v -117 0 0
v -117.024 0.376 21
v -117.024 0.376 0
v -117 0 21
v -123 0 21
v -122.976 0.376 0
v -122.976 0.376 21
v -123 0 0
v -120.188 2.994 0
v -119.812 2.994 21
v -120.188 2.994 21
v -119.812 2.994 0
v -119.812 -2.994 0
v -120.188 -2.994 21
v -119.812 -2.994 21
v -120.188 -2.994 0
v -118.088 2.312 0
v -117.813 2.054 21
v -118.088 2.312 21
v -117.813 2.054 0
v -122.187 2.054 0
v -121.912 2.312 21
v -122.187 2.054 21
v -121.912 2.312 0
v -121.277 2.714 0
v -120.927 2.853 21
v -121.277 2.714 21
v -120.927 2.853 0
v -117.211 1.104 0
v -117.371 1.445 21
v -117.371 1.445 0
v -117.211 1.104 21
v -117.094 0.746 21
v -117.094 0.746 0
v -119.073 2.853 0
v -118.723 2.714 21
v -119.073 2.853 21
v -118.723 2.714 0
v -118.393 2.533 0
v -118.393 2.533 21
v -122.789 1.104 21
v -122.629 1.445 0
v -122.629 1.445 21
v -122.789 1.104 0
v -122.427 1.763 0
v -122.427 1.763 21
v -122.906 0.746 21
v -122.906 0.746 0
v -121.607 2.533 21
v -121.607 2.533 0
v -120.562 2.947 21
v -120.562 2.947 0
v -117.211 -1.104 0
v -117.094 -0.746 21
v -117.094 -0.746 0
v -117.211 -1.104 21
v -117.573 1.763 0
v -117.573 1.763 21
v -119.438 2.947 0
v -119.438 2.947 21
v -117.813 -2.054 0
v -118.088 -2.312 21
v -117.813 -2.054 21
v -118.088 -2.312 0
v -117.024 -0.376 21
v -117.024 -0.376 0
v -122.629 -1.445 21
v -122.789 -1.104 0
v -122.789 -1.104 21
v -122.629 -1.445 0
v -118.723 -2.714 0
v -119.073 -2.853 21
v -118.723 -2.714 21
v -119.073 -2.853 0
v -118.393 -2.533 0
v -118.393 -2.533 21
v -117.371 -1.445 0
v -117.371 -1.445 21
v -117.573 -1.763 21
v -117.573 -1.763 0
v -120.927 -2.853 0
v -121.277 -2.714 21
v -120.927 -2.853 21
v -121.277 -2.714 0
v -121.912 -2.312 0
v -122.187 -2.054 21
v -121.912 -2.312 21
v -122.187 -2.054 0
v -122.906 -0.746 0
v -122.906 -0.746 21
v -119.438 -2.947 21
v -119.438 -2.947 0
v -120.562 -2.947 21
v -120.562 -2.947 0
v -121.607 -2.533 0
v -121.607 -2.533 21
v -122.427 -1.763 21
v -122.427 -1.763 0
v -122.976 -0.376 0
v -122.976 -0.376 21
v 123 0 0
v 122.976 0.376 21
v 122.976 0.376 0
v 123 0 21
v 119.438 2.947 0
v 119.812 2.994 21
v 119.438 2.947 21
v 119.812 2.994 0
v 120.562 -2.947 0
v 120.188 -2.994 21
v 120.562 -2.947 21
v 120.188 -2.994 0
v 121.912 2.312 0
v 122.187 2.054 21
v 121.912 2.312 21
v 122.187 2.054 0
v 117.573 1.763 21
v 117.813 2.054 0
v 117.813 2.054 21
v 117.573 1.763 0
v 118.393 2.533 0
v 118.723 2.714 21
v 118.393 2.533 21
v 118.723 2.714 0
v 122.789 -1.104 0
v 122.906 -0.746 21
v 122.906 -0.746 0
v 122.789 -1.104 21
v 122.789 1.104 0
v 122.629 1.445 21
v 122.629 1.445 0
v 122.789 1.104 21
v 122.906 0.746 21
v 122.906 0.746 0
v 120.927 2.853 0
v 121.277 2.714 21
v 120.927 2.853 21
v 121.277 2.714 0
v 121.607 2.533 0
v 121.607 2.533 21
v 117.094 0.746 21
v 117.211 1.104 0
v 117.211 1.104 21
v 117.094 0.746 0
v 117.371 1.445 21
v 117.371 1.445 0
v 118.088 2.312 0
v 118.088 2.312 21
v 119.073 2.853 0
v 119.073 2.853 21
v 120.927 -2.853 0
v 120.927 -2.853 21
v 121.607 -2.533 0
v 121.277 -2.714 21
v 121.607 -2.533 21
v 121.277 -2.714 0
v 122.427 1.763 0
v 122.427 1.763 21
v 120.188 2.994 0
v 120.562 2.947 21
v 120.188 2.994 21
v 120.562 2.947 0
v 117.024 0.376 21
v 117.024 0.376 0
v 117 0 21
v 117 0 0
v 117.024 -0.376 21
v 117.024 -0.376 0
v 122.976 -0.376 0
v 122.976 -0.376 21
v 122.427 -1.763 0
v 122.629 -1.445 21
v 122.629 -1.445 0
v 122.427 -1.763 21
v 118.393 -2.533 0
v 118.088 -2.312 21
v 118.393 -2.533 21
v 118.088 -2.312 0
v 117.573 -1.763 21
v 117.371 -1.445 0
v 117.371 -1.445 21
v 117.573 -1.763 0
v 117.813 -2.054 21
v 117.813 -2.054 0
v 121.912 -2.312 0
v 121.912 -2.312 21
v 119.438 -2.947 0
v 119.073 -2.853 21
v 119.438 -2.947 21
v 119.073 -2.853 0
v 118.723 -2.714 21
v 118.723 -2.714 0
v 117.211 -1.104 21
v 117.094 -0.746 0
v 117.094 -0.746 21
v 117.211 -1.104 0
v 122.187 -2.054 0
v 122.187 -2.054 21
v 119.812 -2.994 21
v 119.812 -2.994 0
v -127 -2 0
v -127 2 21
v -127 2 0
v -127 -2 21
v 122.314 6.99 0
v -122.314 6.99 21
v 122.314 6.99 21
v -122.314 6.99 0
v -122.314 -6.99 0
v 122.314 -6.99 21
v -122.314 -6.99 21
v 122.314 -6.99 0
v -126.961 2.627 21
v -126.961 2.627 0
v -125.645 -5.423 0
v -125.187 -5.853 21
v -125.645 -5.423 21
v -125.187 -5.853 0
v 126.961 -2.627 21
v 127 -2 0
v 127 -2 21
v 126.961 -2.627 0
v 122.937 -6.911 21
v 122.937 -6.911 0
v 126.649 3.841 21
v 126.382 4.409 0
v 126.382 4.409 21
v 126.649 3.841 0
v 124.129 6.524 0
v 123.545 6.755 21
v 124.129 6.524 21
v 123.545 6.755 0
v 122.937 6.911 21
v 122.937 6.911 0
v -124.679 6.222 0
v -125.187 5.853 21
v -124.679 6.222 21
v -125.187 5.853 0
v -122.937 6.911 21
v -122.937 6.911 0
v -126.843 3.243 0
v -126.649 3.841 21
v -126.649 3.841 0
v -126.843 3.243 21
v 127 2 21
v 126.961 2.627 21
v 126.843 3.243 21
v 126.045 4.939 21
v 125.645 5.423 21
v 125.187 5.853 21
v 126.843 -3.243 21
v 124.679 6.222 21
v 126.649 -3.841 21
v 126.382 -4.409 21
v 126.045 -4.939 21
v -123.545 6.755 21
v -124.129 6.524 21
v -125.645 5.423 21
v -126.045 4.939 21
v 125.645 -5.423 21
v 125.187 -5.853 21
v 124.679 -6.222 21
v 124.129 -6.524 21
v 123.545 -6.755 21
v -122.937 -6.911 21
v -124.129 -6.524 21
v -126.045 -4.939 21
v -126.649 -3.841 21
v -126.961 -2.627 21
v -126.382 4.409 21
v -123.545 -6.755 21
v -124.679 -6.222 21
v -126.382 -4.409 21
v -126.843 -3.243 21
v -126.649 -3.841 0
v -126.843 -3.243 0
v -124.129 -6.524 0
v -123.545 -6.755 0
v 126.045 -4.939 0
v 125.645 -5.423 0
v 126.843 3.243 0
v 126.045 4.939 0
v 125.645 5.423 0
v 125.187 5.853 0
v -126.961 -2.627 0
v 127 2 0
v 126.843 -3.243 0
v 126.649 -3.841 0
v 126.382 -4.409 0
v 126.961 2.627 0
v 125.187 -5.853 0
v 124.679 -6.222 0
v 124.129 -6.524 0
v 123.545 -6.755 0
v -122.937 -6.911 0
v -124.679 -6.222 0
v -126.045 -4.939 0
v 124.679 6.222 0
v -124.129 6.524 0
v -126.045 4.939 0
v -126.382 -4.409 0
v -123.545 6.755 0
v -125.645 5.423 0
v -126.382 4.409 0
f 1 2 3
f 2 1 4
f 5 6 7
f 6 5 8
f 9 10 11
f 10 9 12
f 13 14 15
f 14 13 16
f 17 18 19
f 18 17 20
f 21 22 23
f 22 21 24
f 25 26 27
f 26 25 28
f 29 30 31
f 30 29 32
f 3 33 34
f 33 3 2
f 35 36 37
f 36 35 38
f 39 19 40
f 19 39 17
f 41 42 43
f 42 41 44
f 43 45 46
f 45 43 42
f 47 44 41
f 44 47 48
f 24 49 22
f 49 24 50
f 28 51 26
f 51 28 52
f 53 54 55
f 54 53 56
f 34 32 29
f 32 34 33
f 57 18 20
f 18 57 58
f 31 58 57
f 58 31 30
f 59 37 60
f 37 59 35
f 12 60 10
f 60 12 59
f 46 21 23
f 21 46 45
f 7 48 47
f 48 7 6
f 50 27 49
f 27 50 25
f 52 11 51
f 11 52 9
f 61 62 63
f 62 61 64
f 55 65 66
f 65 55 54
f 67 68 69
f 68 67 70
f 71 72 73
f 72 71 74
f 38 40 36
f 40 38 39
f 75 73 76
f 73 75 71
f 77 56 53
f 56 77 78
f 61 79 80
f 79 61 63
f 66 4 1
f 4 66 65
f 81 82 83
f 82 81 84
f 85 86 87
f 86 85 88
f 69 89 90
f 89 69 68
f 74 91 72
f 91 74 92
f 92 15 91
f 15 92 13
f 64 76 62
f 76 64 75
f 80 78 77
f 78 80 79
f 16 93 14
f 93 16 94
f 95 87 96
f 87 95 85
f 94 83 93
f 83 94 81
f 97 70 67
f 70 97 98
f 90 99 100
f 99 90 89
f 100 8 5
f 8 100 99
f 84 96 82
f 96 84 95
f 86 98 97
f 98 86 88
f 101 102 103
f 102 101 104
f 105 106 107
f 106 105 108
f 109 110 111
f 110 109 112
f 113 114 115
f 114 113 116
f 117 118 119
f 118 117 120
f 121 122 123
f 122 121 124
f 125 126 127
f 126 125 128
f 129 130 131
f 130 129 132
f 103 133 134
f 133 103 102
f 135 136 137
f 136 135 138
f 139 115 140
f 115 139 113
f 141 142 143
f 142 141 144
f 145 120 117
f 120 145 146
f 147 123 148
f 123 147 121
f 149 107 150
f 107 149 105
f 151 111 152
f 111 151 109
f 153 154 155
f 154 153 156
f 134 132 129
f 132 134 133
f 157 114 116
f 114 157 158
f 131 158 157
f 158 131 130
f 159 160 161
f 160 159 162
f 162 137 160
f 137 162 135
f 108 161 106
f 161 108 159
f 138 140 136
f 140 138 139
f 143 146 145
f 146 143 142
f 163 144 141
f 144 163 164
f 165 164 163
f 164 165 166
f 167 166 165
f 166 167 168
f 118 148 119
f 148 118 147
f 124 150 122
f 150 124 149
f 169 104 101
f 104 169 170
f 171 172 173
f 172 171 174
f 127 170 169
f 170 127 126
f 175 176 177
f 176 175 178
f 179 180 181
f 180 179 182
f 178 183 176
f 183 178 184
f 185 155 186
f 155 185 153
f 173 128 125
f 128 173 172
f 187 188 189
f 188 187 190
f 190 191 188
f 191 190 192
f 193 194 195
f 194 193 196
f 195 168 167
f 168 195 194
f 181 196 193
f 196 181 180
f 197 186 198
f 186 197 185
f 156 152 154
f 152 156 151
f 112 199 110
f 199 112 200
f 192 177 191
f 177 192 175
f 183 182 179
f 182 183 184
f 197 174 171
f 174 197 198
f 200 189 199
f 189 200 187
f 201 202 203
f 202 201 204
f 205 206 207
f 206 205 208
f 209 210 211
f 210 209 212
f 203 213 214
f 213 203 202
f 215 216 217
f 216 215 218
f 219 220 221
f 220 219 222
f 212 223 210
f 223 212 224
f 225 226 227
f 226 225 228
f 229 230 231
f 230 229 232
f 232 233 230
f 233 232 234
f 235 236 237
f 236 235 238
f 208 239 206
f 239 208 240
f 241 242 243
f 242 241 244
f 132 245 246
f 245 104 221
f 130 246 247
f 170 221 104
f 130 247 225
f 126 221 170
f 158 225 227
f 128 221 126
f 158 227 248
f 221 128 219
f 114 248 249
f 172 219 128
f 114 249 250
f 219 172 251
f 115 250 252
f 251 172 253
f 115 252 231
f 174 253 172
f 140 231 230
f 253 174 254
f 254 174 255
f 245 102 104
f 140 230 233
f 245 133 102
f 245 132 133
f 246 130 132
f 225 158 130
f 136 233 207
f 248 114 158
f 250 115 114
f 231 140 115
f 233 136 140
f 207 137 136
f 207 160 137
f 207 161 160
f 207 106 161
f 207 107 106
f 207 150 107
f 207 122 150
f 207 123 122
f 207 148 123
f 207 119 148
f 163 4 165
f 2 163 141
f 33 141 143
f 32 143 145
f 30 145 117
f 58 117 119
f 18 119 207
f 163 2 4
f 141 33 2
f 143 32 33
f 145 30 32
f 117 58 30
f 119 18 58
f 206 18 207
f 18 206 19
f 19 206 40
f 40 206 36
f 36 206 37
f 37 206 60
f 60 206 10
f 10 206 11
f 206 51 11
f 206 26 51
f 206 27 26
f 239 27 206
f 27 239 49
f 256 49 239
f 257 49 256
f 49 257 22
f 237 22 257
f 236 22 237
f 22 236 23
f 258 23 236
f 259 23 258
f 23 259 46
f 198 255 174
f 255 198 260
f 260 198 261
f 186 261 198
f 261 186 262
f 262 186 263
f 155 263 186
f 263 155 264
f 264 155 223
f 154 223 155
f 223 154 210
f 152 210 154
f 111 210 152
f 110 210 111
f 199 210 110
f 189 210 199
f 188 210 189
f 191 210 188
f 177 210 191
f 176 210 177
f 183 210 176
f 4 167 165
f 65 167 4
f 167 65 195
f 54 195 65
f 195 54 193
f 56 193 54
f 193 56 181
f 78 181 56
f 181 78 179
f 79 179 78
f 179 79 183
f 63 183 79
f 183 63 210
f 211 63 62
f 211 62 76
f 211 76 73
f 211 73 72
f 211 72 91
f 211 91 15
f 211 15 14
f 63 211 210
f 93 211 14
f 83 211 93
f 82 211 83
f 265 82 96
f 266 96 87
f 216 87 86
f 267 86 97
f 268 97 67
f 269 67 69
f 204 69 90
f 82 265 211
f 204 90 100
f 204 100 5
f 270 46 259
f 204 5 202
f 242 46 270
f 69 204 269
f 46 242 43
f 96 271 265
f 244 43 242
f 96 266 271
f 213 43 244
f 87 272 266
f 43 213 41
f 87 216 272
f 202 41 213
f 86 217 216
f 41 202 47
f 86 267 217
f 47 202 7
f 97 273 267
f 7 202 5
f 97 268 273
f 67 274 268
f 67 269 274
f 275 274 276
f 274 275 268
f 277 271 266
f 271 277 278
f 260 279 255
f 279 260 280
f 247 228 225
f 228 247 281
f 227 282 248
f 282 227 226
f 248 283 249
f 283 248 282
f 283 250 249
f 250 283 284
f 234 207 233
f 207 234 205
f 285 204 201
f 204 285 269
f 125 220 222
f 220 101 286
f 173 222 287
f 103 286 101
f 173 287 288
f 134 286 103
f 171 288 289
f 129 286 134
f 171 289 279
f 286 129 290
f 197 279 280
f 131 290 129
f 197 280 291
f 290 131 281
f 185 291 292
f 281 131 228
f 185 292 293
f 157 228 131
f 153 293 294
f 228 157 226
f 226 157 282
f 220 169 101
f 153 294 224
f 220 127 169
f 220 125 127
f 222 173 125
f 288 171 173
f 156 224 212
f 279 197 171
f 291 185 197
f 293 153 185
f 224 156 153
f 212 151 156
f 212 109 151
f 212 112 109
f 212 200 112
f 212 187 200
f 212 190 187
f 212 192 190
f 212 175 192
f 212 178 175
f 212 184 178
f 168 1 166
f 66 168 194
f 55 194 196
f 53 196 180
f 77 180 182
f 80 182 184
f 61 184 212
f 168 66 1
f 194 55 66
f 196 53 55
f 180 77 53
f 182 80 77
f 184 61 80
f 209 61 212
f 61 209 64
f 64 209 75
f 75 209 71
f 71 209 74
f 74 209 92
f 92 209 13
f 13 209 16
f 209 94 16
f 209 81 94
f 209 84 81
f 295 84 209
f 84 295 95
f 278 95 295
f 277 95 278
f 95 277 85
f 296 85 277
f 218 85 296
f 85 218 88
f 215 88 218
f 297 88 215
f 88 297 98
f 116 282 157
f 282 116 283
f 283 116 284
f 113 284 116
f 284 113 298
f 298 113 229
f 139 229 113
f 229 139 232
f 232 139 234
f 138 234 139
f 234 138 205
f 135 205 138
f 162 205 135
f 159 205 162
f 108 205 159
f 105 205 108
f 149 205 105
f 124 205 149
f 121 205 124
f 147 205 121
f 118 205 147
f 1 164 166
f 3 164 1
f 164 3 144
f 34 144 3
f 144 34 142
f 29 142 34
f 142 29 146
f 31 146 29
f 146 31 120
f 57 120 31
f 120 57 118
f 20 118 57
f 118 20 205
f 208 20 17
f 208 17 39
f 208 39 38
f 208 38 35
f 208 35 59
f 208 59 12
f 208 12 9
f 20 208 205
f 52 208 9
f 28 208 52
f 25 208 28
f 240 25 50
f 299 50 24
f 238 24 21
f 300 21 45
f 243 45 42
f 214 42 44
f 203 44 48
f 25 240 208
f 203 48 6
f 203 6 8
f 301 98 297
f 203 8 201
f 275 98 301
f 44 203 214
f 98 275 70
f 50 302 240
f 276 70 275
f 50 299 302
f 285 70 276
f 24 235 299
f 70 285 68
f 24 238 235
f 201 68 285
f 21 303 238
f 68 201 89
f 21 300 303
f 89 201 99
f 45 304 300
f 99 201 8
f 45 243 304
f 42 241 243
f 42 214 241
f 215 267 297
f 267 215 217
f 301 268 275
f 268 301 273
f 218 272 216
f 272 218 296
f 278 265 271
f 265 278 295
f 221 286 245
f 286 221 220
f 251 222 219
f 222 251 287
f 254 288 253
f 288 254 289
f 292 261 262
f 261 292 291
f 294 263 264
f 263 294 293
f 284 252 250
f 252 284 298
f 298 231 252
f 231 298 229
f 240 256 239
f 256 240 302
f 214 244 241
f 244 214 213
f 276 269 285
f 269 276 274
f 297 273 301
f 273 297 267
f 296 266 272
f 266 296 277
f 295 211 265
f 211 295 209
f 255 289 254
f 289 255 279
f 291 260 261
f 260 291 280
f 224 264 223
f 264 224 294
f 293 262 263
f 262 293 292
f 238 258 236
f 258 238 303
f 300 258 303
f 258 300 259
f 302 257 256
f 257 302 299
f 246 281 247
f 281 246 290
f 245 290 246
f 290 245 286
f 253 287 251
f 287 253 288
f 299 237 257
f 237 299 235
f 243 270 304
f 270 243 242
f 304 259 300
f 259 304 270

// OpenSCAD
$fn = 50;


difference() {
	union() {
		hull() {
			translate(v = [-122.0000000000, 2.0000000000, 0]) {
				cylinder(h = 21, r = 5);
			}
			translate(v = [122.0000000000, 2.0000000000, 0]) {
				cylinder(h = 21, r = 5);
			}
			translate(v = [-122.0000000000, -2.0000000000, 0]) {
				cylinder(h = 21, r = 5);
			}
			translate(v = [122.0000000000, -2.0000000000, 0]) {
				cylinder(h = 21, r = 5);
			}
		}
	}
	union() {
		translate(v = [-120.0000000000, 0.0000000000, -100.0000000000]) {
			cylinder(h = 200, r = 3.0000000000);
		}
		translate(v = [-120.0000000000, 0.0000000000, -100.0000000000]) {
			cylinder(h = 200, r = 3.0000000000);
		}
		translate(v = [120.0000000000, 0.0000000000, -100.0000000000]) {
			cylinder(h = 200, r = 3.0000000000);
		}
		translate(v = [120.0000000000, 0.0000000000, -100.0000000000]) {
			cylinder(h = 200, r = 3.0000000000);
		}
	}
}
